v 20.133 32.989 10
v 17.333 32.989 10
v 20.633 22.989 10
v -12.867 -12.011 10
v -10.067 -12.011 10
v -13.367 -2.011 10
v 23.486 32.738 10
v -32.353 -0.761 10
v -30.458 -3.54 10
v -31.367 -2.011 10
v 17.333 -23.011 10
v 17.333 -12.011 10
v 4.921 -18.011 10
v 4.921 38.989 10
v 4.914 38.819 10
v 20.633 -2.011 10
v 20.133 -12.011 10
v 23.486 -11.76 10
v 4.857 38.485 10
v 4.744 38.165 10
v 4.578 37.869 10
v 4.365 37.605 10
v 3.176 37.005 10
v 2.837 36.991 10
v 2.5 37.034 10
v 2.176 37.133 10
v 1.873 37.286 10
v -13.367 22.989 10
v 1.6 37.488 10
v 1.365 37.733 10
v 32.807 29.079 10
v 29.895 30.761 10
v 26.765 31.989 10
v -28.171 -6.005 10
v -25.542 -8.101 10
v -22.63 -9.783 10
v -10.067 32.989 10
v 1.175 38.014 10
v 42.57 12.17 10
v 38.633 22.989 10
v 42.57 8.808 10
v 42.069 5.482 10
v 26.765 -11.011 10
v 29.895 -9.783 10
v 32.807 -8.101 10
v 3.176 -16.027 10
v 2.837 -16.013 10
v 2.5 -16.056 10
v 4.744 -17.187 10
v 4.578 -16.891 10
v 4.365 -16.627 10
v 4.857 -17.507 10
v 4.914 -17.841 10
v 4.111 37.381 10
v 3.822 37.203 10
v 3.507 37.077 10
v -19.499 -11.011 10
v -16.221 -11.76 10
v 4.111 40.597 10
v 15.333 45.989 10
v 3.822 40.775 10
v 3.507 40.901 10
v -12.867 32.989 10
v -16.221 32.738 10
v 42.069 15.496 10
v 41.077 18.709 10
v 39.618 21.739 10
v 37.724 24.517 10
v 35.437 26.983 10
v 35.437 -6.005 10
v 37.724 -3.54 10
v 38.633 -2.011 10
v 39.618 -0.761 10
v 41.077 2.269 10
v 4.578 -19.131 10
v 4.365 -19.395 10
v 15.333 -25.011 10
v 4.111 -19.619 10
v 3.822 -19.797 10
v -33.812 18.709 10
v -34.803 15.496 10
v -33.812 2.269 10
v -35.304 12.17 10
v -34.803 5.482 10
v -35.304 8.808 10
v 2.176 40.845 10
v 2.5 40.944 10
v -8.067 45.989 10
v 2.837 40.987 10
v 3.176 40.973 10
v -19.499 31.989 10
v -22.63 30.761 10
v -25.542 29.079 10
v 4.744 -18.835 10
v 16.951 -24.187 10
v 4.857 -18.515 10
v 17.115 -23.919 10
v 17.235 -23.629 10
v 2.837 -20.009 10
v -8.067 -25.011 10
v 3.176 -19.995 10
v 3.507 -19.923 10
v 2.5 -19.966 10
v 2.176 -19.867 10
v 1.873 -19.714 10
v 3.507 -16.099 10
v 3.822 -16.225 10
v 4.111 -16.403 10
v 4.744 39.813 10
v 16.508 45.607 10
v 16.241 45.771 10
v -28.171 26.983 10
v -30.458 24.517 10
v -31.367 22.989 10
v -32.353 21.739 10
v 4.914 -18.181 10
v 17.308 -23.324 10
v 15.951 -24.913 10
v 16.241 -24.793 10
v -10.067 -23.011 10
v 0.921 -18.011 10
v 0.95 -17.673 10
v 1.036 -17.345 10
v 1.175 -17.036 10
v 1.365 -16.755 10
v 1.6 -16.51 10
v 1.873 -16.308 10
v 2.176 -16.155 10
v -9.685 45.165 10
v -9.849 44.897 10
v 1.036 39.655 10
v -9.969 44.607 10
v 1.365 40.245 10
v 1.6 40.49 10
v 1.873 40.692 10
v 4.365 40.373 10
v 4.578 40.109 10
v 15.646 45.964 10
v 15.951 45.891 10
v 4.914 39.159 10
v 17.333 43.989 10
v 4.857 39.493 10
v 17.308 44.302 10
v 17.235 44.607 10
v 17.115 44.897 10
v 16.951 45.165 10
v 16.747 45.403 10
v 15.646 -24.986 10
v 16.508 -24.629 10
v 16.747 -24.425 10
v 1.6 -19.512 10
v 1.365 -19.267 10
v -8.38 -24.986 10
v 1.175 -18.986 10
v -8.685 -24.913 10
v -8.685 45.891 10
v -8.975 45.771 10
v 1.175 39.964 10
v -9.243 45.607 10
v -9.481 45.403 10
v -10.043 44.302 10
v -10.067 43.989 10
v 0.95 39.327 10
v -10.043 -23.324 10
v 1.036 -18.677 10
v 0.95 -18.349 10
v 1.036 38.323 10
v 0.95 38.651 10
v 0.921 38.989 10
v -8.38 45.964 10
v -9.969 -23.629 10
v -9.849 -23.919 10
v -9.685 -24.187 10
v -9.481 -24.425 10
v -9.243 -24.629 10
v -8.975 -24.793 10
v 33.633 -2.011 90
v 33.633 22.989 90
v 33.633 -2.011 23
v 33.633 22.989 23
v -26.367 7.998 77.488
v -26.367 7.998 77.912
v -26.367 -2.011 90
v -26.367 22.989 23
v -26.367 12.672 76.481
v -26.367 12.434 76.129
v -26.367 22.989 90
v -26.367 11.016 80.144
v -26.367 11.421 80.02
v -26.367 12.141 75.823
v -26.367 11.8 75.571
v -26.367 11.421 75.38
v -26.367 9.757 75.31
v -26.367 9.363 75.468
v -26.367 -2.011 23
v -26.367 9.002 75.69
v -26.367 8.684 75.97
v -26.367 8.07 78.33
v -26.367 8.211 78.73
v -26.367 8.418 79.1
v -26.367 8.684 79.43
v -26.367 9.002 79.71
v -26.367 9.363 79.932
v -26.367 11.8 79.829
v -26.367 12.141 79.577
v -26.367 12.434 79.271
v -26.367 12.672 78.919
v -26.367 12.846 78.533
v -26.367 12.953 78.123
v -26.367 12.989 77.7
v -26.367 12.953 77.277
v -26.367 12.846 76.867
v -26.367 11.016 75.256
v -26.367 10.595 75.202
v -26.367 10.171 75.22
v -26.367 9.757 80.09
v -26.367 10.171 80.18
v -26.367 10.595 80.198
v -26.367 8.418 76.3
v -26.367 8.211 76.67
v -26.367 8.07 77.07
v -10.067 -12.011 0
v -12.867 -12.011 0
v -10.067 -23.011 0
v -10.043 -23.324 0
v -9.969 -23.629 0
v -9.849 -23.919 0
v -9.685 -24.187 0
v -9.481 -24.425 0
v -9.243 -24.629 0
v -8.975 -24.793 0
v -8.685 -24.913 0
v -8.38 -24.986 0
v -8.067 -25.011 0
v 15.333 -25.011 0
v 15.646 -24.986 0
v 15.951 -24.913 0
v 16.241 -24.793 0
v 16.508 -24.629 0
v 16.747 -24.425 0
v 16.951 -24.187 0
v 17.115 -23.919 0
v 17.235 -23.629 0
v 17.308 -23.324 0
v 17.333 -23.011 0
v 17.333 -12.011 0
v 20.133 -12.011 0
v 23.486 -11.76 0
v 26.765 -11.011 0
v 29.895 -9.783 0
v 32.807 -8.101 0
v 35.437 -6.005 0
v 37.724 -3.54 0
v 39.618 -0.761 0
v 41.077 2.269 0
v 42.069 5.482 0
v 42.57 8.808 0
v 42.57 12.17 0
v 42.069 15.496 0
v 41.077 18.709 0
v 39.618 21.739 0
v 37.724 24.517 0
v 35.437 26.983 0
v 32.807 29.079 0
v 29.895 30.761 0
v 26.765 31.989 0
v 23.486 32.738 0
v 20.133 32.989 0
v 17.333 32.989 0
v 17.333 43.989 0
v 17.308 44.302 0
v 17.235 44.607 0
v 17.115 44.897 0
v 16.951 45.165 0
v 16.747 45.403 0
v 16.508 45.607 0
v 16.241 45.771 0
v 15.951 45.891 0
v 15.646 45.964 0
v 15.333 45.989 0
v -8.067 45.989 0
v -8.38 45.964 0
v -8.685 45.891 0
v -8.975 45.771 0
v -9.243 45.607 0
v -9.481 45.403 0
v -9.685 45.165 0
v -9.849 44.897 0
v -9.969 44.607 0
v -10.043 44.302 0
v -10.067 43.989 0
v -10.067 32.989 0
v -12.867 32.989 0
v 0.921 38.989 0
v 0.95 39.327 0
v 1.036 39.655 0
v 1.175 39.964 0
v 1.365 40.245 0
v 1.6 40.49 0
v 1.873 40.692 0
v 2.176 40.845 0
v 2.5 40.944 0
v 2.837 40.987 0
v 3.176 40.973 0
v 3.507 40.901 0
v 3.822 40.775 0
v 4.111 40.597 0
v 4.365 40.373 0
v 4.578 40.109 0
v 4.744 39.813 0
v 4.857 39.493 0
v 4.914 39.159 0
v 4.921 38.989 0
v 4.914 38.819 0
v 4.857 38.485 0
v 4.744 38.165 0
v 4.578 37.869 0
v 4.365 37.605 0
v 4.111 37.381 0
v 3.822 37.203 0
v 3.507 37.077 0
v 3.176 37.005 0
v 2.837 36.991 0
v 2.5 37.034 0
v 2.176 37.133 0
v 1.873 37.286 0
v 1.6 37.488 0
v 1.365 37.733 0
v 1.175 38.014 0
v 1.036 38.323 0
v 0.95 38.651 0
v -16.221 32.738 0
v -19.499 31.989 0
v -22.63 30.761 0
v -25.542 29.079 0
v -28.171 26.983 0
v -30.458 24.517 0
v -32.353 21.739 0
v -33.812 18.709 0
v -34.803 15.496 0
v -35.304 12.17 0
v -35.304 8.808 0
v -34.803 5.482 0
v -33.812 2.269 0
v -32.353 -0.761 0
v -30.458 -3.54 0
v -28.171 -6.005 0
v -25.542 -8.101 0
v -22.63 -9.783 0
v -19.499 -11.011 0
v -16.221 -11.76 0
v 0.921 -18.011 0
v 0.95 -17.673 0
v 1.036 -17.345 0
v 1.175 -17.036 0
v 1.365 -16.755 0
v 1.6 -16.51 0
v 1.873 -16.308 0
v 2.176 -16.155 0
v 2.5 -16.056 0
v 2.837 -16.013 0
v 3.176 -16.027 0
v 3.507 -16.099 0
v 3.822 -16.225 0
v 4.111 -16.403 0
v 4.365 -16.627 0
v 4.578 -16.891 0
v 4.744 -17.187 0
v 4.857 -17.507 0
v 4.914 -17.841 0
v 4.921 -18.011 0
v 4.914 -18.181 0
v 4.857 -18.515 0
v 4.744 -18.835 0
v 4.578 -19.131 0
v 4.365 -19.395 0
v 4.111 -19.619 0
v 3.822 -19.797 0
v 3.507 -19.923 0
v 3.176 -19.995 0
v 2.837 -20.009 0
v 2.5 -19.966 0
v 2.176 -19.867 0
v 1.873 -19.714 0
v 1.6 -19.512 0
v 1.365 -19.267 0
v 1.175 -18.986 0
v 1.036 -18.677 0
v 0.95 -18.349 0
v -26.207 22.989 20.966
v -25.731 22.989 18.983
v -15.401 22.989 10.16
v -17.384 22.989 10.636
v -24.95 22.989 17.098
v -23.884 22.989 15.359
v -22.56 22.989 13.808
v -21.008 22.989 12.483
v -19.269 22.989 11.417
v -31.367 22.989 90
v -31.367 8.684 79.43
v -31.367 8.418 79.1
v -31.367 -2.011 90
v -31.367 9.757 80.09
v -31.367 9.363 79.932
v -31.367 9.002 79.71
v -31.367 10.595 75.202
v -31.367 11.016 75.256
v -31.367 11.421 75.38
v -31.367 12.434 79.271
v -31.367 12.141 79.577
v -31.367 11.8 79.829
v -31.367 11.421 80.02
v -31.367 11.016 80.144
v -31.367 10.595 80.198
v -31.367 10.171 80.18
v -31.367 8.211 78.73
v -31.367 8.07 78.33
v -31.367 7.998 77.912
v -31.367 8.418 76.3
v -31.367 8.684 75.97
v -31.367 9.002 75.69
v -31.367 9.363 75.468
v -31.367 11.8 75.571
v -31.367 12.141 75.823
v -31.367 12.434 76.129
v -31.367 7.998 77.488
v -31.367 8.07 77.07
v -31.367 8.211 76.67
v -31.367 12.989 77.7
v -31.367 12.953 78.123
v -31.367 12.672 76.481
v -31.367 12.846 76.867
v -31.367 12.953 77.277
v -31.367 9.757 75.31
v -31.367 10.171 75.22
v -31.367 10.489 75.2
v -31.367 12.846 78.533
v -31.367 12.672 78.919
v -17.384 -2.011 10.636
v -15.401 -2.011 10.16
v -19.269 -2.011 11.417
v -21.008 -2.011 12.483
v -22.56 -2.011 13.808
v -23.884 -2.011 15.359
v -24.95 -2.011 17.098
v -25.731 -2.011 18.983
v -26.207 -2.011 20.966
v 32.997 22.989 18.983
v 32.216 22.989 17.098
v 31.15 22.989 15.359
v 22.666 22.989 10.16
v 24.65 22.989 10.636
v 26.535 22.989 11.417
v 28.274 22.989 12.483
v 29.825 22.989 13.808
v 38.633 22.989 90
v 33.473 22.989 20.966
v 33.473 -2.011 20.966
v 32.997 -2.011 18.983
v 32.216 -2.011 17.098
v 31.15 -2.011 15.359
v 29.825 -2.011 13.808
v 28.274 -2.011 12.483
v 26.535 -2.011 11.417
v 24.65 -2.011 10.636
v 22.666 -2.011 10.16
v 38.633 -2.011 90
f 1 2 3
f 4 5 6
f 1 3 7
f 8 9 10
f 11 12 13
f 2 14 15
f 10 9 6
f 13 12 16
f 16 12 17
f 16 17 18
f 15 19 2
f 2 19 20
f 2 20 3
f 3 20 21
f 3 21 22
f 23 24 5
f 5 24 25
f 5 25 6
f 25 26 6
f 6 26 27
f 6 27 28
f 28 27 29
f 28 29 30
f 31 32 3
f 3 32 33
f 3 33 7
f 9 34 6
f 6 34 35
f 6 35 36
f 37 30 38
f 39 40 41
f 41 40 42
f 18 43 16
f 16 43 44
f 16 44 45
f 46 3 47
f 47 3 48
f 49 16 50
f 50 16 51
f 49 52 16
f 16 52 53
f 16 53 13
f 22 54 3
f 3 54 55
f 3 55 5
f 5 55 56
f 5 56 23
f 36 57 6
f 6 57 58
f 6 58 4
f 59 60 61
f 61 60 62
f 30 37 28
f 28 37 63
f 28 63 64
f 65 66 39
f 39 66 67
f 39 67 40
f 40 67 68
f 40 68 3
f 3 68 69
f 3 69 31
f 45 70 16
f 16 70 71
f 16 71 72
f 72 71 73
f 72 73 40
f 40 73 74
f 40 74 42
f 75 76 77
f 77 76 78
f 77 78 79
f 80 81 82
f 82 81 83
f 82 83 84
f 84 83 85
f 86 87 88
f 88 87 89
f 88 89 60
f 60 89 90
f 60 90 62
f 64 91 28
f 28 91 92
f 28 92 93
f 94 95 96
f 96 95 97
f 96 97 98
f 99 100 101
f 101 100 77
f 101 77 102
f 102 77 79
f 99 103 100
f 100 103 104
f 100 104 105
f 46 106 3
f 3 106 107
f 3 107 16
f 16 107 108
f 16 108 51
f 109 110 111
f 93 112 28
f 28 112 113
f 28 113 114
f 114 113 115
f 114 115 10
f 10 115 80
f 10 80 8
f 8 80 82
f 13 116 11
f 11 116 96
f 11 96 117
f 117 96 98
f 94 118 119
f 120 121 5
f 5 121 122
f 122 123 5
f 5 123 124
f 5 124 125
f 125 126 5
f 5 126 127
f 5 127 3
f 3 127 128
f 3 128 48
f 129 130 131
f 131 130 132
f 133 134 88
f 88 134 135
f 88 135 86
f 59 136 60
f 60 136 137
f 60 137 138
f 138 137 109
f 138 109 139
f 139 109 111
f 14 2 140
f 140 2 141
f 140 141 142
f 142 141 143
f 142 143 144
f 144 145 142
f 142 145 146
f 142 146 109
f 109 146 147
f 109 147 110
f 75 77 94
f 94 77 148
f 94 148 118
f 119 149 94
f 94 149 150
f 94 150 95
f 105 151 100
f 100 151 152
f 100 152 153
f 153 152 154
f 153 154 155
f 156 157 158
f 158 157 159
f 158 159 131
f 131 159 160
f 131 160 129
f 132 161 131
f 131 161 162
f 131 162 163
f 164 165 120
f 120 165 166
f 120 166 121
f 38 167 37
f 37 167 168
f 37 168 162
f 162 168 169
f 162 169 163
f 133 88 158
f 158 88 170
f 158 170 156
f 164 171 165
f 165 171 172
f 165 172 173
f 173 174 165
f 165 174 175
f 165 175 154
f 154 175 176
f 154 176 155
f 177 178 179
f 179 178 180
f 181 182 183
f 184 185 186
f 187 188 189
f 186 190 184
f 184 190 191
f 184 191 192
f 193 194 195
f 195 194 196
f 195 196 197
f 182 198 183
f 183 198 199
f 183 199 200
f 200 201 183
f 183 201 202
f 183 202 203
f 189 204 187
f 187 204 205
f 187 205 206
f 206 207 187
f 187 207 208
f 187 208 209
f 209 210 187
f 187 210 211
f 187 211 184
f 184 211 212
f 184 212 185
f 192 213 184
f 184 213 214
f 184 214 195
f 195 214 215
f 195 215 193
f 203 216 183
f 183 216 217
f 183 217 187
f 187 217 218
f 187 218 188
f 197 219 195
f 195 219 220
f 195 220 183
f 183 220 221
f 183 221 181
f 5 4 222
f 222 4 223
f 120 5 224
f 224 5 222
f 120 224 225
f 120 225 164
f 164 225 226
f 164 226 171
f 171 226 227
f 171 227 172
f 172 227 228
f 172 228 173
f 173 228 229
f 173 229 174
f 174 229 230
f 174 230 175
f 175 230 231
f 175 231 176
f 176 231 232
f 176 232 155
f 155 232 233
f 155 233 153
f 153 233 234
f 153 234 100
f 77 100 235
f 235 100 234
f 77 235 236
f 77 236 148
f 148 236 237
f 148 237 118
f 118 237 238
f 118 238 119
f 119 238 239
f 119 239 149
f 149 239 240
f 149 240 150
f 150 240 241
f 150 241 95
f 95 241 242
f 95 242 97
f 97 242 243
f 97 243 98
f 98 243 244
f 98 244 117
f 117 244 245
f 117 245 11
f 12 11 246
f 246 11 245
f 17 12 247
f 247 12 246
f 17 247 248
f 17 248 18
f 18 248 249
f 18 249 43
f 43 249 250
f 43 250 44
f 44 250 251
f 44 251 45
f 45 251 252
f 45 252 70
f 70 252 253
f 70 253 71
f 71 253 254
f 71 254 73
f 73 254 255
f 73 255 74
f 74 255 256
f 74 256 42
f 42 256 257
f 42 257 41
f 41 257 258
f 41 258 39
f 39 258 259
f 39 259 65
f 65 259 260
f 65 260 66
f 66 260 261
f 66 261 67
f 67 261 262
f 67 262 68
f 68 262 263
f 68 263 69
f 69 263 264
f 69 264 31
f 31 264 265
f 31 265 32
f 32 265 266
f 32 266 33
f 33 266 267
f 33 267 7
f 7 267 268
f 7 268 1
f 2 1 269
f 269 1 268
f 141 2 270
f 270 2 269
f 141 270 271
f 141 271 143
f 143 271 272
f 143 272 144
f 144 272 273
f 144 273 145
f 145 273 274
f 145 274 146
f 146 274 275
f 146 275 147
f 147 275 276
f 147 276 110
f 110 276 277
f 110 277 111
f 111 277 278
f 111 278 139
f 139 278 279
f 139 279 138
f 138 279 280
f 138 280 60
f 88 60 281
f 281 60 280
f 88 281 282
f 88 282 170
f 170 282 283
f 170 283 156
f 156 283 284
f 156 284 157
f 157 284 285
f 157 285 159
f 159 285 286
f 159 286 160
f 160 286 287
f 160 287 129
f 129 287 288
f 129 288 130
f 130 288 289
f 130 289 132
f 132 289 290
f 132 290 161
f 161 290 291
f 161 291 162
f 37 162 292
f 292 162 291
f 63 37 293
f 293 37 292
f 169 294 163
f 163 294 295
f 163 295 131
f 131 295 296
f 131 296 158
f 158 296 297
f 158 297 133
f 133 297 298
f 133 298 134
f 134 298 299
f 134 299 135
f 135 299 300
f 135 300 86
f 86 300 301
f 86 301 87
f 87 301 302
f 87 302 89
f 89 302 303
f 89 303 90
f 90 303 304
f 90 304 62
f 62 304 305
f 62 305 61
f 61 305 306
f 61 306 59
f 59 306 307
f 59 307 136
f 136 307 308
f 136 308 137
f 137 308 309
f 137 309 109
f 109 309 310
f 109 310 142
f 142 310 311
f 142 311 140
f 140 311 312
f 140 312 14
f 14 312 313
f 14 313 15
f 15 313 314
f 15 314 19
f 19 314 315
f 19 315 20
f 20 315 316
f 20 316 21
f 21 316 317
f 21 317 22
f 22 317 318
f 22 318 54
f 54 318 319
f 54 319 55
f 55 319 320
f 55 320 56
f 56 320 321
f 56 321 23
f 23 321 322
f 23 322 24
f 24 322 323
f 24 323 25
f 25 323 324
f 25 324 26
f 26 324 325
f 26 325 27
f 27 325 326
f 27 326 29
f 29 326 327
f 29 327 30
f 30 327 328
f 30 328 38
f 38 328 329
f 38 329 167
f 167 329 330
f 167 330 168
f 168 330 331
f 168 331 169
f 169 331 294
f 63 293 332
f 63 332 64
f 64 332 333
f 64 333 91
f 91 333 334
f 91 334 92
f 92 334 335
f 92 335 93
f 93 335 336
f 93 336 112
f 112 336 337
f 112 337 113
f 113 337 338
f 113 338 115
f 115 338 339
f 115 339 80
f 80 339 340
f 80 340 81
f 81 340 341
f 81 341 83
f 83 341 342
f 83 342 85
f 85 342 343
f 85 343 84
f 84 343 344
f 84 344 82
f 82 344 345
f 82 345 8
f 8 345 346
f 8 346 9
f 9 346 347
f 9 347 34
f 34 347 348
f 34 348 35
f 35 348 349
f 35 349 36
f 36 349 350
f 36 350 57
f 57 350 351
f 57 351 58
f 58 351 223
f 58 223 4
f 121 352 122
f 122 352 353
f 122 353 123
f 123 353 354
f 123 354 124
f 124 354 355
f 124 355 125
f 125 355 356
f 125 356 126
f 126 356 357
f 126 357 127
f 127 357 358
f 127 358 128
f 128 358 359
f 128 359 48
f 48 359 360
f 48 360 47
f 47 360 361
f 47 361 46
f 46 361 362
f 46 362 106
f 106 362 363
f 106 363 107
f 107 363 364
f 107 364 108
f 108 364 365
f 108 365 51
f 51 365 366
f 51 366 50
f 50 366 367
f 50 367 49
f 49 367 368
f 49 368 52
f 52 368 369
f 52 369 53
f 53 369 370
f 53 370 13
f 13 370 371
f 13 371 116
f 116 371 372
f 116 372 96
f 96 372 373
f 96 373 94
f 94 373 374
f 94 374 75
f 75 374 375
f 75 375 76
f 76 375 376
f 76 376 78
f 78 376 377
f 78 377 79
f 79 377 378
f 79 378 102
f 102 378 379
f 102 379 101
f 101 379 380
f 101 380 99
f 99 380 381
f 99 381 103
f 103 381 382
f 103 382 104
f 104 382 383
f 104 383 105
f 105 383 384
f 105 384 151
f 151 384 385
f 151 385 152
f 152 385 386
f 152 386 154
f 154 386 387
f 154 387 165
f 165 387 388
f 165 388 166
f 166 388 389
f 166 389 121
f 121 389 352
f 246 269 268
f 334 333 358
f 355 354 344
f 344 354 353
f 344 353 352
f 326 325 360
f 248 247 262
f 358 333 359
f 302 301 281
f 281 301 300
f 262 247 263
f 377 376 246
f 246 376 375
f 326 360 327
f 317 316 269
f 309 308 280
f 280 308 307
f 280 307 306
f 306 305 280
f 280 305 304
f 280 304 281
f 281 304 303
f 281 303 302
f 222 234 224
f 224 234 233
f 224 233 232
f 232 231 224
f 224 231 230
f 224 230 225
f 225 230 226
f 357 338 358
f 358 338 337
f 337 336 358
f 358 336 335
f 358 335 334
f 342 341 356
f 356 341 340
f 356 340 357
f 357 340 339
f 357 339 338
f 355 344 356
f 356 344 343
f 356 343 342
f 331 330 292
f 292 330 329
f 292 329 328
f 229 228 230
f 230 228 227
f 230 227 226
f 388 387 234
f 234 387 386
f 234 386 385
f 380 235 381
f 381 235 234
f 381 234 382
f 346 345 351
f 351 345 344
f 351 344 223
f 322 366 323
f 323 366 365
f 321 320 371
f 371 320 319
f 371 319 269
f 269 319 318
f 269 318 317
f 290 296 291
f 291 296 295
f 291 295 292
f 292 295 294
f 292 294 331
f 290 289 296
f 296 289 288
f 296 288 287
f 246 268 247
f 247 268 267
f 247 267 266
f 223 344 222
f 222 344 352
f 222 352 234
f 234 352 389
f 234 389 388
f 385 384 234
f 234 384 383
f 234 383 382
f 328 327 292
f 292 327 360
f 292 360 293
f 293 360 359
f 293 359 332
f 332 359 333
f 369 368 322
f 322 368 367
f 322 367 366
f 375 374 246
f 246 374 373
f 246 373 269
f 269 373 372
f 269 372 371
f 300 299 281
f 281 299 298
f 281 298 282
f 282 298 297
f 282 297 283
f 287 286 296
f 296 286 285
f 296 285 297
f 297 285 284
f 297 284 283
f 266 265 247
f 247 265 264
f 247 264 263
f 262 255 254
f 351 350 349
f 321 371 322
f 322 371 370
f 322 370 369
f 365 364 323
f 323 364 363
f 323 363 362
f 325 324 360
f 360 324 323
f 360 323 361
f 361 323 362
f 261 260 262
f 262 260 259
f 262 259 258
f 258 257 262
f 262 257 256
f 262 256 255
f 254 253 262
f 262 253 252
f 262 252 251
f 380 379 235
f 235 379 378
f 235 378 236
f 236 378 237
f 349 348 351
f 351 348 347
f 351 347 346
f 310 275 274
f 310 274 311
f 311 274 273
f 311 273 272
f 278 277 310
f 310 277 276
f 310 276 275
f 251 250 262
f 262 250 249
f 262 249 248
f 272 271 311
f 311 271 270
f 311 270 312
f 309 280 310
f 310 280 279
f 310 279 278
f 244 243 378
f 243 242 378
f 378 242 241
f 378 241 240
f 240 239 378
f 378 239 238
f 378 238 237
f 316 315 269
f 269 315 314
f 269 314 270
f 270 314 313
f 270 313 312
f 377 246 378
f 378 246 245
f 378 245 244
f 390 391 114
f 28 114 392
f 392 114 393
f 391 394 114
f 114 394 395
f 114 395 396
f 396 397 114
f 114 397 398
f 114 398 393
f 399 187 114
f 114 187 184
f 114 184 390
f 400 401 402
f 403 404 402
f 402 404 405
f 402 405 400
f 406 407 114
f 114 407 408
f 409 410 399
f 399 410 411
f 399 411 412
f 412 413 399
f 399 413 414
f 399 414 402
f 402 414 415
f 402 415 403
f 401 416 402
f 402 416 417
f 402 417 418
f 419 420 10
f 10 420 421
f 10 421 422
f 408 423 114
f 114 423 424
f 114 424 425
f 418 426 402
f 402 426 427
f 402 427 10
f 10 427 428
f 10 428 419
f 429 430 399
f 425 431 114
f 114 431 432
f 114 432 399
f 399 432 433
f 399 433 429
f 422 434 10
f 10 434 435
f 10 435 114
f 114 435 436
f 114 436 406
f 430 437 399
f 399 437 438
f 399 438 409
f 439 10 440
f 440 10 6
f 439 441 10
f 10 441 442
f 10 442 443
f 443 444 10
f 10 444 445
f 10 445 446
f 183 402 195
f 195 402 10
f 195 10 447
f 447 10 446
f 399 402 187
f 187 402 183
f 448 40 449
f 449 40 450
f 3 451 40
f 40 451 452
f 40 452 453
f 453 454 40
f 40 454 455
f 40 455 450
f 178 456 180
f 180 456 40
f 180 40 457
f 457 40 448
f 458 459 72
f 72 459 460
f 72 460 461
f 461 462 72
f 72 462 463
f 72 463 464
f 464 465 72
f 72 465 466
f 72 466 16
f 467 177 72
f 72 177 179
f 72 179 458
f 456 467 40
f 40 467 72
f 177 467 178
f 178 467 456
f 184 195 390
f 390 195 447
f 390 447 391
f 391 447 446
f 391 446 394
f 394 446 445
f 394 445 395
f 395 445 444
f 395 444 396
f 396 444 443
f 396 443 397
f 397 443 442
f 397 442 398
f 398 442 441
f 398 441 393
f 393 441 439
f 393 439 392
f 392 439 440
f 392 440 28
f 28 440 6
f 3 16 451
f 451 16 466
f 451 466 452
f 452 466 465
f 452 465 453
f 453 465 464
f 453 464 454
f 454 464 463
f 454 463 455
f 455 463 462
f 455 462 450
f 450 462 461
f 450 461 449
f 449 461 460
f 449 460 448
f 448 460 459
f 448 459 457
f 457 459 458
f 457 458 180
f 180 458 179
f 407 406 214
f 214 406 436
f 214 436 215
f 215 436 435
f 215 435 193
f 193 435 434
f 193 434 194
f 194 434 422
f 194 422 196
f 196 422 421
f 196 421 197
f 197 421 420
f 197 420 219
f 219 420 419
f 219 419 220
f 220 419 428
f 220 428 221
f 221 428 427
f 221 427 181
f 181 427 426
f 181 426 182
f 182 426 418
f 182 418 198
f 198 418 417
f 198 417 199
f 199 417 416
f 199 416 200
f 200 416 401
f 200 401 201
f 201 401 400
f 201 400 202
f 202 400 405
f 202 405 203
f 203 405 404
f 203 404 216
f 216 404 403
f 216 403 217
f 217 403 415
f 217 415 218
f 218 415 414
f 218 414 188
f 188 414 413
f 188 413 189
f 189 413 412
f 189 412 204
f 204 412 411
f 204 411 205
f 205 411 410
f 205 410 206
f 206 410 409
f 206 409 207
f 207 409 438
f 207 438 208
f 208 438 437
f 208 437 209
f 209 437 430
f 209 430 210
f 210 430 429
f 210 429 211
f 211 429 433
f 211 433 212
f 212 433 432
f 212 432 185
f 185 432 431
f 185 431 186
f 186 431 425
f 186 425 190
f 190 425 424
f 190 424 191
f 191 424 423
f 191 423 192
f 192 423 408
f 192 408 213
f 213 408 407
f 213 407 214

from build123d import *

# Parameters (mm, degrees)
SKETCH_1_R          = 2
EXTRUDE_1_DEPTH     = 10
SKETCH_2_W          = 5
SKETCH_2_H          = 25
EXTRUDE_2_DEPTH     = 80
EXTRUDE_3_DEPTH     = 25
EXTRUDE_4_DEPTH     = 25
CUT_EXTRUDE_1_REACH = 124.376
SKETCH_8_R          = 2.5


with BuildPart() as part:
    # 草圖1 → 填料-伸長1 (new body)
    # profile 1 of 3: a face of its own
    with BuildSketch(Plane.XY):
        with BuildLine():
            Line((-12.867229619, 32.988964319), (20.132770381, 32.988964319))
            ThreePointArc((20.132770381, 32.988964319), (42.632770381, 10.488964319), (20.132770381, -12.011035681))
            Line((20.132770381, -12.011035681), (-12.867229619, -12.011035681))
            ThreePointArc((-12.867229619, -12.011035681), (-35.367229619, 10.488964319), (-12.867229619, 32.988964319))
        make_face()
    # profile 2 of 3: a face of its own
    with BuildSketch(Plane.XY):
        with BuildLine():
            Line((-10.067229619, 32.988964319), (17.332770381, 32.988964319))
            Line((17.332770381, 32.988964319), (17.332770381, 43.988964319))
            ThreePointArc((17.332770381, 43.988964319), (16.746983944, 45.403177881), (15.332770381, 45.988964319))
            Line((15.332770381, 45.988964319), (-8.067229619, 45.988964319))
            ThreePointArc((-8.067229619, 45.988964319), (-9.481443181, 45.403177881), (-10.067229619, 43.988964319))
            Line((-10.067229619, 43.988964319), (-10.067229619, 32.988964319))
        make_face()
        with Locations((2.921464597, 38.988964319)):
            Circle(SKETCH_1_R, mode=Mode.SUBTRACT)
    # profile 3 of 3: a face of its own
    with BuildSketch(Plane.XY):
        with BuildLine():
            Line((-10.067229619, -12.011035681), (17.332770381, -12.011035681))
            Line((17.332770381, -12.011035681), (17.332770381, -23.011035681))
            ThreePointArc((17.332770381, -23.011035681), (16.746983944, -24.425249243), (15.332770381, -25.011035681))
            Line((15.332770381, -25.011035681), (-8.067229619, -25.011035681))
            ThreePointArc((-8.067229619, -25.011035681), (-9.481443181, -24.425249243), (-10.067229619, -23.011035681))
            Line((-10.067229619, -23.011035681), (-10.067229619, -12.011035681))
        make_face()
        with Locations((2.921464597, -18.011035681)):
            Circle(SKETCH_1_R, mode=Mode.SUBTRACT)
    extrude(amount=EXTRUDE_1_DEPTH)

    # 草圖2 → 填料-伸長2 (add)
    with BuildSketch(Plane.XY.offset(10)):
        with Locations((-28.867229619, 10.488964319)):
            Rectangle(SKETCH_2_W, SKETCH_2_H)
        with Locations((36.132770381, 10.488964319)):
            Rectangle(SKETCH_2_W, SKETCH_2_H)
    extrude(amount=EXTRUDE_2_DEPTH)

    # 草圖6 → 填料-伸長3 (add)
    with BuildSketch(Plane.XZ.offset(2.011035681)):
        with BuildLine():
            ThreePointArc((-13.367229619, 10), (-22.559617774, 13.807611845), (-26.367229619, 23))
            Line((-26.367229619, 23), (-26.367229619, 10))
            Line((-26.367229619, 10), (-13.367229619, 10))
        make_face()
    extrude(amount=-EXTRUDE_3_DEPTH)

    # 草圖7 → 填料-伸長4 (add)
    with BuildSketch(Plane.XZ.offset(2.011035681)):
        with BuildLine():
            ThreePointArc((33.632770381, 23), (29.825158537, 13.807611845), (20.632770381, 10))
            Line((20.632770381, 10), (33.632770381, 10))
            Line((33.632770381, 10), (33.632770381, 23))
        make_face()
    extrude(amount=-EXTRUDE_4_DEPTH)

    # 草圖8 → 除料-伸長1 (cut, up to next)
    with BuildSketch(Plane(origin=(-26.367229619, 0, 0), x_dir=(0, 0, -1), z_dir=(1, 0, 0)), mode=Mode.PRIVATE) as cut_extrude_1_sk1:
        with Locations(Location((-77.7, 10.488964319, 0), (0, 0, 90))):
            Circle(SKETCH_8_R)
    cut_extrude_1_tool1 = extrude(cut_extrude_1_sk1.sketch, amount=-CUT_EXTRUDE_1_REACH, mode=Mode.PRIVATE) & part.part
    add(cut_extrude_1_tool1.solids().sort_by_distance((-26.36723, 10.488964, 77.7))[0], mode=Mode.SUBTRACT)


solid = part.part
